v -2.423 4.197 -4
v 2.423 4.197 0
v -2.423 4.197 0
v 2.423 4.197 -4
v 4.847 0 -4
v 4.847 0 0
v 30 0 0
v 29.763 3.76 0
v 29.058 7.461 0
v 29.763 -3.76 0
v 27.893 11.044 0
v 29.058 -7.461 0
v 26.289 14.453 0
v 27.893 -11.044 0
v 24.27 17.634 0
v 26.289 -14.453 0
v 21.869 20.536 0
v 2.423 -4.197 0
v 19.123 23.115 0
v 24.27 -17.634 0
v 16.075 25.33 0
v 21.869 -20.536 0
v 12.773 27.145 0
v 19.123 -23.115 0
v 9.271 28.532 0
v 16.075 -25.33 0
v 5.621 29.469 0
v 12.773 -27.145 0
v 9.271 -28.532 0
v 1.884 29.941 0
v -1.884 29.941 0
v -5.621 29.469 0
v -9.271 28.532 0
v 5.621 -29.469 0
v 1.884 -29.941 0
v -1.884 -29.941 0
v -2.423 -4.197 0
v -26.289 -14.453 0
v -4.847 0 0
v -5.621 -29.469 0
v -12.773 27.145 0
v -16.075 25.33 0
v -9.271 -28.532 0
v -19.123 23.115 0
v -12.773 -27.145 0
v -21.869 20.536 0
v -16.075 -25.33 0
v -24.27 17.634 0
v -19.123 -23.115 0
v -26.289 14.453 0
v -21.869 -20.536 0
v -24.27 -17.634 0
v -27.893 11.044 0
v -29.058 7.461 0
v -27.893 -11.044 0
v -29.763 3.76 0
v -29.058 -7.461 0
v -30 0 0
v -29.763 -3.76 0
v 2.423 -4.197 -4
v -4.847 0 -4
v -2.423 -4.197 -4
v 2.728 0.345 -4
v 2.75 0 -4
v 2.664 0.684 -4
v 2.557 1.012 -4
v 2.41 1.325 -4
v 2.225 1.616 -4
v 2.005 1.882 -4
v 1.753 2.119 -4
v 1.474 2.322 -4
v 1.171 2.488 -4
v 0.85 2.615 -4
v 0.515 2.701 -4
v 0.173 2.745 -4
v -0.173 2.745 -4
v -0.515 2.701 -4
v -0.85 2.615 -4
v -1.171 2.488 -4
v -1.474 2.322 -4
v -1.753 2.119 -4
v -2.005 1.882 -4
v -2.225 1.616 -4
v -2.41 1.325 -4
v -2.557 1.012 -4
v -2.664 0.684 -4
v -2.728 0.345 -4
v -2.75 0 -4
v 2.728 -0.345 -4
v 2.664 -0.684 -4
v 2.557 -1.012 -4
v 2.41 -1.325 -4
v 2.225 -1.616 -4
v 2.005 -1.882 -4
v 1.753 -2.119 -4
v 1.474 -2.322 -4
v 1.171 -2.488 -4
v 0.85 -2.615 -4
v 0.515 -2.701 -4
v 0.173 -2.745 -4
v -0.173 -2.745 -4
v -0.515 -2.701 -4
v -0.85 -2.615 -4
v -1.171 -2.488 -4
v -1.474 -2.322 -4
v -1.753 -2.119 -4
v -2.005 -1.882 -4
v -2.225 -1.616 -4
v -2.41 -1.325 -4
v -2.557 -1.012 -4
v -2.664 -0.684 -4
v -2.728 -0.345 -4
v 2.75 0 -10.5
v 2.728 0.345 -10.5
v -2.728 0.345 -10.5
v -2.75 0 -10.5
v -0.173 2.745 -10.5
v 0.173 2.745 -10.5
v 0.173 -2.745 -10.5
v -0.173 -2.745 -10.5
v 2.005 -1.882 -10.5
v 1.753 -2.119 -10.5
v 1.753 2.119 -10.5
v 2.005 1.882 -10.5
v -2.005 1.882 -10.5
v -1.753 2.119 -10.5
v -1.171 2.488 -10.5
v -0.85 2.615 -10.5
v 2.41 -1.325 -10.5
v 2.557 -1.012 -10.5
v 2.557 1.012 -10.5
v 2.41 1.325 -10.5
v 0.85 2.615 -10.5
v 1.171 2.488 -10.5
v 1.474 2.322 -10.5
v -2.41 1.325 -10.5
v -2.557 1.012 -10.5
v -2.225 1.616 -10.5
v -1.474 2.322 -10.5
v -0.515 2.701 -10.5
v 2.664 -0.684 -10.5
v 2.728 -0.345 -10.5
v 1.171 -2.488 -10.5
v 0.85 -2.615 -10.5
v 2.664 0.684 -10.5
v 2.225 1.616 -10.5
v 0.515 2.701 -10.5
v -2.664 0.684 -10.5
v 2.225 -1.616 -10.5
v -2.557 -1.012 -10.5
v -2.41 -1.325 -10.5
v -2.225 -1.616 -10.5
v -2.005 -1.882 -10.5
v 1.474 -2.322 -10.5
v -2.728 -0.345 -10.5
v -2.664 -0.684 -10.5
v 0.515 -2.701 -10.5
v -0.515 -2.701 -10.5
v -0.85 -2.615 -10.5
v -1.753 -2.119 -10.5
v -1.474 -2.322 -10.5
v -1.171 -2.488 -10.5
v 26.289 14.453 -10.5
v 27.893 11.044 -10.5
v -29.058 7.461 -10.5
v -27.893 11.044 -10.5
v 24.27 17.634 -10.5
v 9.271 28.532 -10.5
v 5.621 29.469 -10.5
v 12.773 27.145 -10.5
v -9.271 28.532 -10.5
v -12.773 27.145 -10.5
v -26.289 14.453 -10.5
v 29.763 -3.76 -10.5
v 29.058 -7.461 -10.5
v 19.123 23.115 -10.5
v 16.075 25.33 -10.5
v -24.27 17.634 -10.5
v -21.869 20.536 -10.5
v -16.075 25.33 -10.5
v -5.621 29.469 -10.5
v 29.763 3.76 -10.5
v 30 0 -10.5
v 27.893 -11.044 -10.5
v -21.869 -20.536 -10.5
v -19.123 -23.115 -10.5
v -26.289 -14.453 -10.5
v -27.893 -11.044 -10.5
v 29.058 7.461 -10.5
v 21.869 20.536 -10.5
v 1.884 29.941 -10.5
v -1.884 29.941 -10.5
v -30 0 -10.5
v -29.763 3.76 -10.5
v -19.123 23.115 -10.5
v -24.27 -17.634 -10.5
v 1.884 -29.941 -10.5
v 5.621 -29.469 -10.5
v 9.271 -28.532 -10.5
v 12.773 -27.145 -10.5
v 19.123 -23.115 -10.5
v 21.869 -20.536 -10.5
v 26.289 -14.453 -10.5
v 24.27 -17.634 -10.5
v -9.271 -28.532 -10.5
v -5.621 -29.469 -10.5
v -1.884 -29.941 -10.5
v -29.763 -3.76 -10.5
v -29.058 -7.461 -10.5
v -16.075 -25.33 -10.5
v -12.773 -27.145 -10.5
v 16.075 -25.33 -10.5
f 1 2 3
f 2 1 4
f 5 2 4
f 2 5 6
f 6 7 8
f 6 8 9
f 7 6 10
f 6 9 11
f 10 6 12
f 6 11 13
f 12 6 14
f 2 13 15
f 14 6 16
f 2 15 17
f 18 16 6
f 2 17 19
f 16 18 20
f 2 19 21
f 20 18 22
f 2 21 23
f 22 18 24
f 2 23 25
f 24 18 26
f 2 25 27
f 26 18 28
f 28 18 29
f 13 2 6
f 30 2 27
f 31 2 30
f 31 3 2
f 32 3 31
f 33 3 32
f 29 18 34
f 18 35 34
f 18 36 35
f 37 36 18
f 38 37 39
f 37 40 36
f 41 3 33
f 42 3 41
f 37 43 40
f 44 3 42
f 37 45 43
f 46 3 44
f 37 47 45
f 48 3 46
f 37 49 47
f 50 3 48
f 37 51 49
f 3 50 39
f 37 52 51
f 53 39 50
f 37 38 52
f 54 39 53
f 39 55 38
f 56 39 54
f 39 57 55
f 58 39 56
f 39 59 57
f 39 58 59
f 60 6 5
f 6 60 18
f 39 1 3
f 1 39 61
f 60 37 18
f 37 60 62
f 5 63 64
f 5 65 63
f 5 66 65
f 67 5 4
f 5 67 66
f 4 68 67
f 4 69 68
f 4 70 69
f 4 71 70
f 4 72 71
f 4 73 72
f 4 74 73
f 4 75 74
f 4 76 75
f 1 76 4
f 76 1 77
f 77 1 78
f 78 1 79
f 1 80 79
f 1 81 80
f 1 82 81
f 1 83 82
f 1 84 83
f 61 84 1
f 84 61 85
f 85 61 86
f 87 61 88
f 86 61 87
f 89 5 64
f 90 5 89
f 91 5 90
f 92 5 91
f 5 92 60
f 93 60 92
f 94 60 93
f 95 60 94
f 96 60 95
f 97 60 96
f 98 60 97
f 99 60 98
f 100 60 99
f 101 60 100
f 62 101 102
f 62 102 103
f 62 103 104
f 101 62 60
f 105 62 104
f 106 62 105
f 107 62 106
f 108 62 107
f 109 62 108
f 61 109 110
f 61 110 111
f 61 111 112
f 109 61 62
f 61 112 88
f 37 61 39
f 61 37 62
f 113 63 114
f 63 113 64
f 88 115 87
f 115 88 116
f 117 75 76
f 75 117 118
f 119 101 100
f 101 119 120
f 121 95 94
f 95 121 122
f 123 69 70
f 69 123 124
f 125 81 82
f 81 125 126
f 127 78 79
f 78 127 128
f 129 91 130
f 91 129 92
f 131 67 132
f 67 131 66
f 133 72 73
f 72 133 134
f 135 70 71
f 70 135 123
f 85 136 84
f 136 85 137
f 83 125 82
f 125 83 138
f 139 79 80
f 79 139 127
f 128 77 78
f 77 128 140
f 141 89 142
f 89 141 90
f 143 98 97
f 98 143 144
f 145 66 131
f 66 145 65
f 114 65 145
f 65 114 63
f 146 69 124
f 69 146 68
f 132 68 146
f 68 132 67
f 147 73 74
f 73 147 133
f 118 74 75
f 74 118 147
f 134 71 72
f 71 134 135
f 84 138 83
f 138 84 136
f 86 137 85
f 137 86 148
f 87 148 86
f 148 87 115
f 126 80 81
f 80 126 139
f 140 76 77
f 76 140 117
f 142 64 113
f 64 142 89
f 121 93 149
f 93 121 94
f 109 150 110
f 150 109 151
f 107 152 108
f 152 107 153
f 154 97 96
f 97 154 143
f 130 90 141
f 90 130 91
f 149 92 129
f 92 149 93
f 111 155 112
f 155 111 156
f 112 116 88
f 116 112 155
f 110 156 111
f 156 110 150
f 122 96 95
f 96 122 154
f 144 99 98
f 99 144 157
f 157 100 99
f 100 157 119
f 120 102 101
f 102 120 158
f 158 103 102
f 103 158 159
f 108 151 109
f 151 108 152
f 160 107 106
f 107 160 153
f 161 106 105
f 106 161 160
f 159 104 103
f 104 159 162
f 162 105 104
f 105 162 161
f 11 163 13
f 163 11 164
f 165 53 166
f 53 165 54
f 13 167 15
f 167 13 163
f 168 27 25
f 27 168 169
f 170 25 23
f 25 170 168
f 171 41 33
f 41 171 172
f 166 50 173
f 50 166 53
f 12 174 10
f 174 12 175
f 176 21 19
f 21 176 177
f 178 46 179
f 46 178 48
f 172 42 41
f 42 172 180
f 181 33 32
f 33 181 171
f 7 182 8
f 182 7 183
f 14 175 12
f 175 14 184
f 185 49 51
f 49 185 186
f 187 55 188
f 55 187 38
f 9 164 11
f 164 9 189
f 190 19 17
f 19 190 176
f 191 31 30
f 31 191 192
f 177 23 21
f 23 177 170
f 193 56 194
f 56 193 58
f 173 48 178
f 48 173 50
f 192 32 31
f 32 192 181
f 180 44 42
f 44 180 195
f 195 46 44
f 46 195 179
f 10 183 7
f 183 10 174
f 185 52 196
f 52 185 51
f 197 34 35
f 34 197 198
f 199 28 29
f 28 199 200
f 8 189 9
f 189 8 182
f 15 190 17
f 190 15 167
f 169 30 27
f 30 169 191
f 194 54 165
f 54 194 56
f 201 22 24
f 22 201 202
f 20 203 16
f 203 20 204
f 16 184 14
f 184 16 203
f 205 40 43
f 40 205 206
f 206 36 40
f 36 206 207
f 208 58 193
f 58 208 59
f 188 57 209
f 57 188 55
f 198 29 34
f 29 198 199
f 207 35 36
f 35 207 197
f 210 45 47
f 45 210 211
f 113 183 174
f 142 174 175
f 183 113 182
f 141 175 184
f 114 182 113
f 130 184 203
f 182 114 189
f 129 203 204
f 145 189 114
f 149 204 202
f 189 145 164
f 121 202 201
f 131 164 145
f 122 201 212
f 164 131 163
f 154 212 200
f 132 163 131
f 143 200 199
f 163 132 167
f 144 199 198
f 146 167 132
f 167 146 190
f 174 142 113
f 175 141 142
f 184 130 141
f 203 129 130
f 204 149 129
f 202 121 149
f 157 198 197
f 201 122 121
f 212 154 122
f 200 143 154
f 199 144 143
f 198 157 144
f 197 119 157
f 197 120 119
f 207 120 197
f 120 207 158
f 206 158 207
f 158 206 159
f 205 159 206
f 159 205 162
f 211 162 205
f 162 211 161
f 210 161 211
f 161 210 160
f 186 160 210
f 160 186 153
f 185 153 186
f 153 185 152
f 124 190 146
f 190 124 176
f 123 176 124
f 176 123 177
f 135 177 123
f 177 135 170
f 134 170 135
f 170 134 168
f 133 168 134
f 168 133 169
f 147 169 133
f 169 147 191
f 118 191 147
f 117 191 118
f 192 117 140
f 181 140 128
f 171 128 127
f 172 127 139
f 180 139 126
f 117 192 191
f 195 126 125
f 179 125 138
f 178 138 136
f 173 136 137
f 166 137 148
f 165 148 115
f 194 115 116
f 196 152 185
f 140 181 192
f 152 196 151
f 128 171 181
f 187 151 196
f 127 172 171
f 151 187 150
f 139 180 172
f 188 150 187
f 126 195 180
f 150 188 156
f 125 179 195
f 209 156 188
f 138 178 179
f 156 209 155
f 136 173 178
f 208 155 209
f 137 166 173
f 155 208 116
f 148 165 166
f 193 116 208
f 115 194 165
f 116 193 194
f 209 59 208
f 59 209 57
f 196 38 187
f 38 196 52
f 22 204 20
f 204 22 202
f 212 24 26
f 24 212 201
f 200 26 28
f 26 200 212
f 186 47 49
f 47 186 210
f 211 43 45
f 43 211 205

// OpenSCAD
$fn = 50;


difference() {
	union() {
		translate(v = [0, 0, -10.5000000000]) {
			cylinder(h = 10.5000000000, r = 30.0000000000);
		}
	}
	union() {
		translate(v = [0, 0, 0]) {
			rotate(a = [0, 0, 0]) {
				difference() {
					union() {
						translate(v = [0, 0, -4]) {
							#linear_extrude(height = 4) {
								polygon(points = [[4.8468000000, 0.0000000000], [2.4234000000, 4.1974519271], [-2.4234000000, 4.1974519271], [-4.8468000000, 0.0000000000], [-2.4234000000, -4.1974519271], [2.4234000000, -4.1974519271]]);
							}
						}
					}
					union();
				}
			}
		}
		#translate(v = [0, 0, -100.0000000000]) {
			cylinder(h = 200, r = 2.7500000000);
		}
	}
}
